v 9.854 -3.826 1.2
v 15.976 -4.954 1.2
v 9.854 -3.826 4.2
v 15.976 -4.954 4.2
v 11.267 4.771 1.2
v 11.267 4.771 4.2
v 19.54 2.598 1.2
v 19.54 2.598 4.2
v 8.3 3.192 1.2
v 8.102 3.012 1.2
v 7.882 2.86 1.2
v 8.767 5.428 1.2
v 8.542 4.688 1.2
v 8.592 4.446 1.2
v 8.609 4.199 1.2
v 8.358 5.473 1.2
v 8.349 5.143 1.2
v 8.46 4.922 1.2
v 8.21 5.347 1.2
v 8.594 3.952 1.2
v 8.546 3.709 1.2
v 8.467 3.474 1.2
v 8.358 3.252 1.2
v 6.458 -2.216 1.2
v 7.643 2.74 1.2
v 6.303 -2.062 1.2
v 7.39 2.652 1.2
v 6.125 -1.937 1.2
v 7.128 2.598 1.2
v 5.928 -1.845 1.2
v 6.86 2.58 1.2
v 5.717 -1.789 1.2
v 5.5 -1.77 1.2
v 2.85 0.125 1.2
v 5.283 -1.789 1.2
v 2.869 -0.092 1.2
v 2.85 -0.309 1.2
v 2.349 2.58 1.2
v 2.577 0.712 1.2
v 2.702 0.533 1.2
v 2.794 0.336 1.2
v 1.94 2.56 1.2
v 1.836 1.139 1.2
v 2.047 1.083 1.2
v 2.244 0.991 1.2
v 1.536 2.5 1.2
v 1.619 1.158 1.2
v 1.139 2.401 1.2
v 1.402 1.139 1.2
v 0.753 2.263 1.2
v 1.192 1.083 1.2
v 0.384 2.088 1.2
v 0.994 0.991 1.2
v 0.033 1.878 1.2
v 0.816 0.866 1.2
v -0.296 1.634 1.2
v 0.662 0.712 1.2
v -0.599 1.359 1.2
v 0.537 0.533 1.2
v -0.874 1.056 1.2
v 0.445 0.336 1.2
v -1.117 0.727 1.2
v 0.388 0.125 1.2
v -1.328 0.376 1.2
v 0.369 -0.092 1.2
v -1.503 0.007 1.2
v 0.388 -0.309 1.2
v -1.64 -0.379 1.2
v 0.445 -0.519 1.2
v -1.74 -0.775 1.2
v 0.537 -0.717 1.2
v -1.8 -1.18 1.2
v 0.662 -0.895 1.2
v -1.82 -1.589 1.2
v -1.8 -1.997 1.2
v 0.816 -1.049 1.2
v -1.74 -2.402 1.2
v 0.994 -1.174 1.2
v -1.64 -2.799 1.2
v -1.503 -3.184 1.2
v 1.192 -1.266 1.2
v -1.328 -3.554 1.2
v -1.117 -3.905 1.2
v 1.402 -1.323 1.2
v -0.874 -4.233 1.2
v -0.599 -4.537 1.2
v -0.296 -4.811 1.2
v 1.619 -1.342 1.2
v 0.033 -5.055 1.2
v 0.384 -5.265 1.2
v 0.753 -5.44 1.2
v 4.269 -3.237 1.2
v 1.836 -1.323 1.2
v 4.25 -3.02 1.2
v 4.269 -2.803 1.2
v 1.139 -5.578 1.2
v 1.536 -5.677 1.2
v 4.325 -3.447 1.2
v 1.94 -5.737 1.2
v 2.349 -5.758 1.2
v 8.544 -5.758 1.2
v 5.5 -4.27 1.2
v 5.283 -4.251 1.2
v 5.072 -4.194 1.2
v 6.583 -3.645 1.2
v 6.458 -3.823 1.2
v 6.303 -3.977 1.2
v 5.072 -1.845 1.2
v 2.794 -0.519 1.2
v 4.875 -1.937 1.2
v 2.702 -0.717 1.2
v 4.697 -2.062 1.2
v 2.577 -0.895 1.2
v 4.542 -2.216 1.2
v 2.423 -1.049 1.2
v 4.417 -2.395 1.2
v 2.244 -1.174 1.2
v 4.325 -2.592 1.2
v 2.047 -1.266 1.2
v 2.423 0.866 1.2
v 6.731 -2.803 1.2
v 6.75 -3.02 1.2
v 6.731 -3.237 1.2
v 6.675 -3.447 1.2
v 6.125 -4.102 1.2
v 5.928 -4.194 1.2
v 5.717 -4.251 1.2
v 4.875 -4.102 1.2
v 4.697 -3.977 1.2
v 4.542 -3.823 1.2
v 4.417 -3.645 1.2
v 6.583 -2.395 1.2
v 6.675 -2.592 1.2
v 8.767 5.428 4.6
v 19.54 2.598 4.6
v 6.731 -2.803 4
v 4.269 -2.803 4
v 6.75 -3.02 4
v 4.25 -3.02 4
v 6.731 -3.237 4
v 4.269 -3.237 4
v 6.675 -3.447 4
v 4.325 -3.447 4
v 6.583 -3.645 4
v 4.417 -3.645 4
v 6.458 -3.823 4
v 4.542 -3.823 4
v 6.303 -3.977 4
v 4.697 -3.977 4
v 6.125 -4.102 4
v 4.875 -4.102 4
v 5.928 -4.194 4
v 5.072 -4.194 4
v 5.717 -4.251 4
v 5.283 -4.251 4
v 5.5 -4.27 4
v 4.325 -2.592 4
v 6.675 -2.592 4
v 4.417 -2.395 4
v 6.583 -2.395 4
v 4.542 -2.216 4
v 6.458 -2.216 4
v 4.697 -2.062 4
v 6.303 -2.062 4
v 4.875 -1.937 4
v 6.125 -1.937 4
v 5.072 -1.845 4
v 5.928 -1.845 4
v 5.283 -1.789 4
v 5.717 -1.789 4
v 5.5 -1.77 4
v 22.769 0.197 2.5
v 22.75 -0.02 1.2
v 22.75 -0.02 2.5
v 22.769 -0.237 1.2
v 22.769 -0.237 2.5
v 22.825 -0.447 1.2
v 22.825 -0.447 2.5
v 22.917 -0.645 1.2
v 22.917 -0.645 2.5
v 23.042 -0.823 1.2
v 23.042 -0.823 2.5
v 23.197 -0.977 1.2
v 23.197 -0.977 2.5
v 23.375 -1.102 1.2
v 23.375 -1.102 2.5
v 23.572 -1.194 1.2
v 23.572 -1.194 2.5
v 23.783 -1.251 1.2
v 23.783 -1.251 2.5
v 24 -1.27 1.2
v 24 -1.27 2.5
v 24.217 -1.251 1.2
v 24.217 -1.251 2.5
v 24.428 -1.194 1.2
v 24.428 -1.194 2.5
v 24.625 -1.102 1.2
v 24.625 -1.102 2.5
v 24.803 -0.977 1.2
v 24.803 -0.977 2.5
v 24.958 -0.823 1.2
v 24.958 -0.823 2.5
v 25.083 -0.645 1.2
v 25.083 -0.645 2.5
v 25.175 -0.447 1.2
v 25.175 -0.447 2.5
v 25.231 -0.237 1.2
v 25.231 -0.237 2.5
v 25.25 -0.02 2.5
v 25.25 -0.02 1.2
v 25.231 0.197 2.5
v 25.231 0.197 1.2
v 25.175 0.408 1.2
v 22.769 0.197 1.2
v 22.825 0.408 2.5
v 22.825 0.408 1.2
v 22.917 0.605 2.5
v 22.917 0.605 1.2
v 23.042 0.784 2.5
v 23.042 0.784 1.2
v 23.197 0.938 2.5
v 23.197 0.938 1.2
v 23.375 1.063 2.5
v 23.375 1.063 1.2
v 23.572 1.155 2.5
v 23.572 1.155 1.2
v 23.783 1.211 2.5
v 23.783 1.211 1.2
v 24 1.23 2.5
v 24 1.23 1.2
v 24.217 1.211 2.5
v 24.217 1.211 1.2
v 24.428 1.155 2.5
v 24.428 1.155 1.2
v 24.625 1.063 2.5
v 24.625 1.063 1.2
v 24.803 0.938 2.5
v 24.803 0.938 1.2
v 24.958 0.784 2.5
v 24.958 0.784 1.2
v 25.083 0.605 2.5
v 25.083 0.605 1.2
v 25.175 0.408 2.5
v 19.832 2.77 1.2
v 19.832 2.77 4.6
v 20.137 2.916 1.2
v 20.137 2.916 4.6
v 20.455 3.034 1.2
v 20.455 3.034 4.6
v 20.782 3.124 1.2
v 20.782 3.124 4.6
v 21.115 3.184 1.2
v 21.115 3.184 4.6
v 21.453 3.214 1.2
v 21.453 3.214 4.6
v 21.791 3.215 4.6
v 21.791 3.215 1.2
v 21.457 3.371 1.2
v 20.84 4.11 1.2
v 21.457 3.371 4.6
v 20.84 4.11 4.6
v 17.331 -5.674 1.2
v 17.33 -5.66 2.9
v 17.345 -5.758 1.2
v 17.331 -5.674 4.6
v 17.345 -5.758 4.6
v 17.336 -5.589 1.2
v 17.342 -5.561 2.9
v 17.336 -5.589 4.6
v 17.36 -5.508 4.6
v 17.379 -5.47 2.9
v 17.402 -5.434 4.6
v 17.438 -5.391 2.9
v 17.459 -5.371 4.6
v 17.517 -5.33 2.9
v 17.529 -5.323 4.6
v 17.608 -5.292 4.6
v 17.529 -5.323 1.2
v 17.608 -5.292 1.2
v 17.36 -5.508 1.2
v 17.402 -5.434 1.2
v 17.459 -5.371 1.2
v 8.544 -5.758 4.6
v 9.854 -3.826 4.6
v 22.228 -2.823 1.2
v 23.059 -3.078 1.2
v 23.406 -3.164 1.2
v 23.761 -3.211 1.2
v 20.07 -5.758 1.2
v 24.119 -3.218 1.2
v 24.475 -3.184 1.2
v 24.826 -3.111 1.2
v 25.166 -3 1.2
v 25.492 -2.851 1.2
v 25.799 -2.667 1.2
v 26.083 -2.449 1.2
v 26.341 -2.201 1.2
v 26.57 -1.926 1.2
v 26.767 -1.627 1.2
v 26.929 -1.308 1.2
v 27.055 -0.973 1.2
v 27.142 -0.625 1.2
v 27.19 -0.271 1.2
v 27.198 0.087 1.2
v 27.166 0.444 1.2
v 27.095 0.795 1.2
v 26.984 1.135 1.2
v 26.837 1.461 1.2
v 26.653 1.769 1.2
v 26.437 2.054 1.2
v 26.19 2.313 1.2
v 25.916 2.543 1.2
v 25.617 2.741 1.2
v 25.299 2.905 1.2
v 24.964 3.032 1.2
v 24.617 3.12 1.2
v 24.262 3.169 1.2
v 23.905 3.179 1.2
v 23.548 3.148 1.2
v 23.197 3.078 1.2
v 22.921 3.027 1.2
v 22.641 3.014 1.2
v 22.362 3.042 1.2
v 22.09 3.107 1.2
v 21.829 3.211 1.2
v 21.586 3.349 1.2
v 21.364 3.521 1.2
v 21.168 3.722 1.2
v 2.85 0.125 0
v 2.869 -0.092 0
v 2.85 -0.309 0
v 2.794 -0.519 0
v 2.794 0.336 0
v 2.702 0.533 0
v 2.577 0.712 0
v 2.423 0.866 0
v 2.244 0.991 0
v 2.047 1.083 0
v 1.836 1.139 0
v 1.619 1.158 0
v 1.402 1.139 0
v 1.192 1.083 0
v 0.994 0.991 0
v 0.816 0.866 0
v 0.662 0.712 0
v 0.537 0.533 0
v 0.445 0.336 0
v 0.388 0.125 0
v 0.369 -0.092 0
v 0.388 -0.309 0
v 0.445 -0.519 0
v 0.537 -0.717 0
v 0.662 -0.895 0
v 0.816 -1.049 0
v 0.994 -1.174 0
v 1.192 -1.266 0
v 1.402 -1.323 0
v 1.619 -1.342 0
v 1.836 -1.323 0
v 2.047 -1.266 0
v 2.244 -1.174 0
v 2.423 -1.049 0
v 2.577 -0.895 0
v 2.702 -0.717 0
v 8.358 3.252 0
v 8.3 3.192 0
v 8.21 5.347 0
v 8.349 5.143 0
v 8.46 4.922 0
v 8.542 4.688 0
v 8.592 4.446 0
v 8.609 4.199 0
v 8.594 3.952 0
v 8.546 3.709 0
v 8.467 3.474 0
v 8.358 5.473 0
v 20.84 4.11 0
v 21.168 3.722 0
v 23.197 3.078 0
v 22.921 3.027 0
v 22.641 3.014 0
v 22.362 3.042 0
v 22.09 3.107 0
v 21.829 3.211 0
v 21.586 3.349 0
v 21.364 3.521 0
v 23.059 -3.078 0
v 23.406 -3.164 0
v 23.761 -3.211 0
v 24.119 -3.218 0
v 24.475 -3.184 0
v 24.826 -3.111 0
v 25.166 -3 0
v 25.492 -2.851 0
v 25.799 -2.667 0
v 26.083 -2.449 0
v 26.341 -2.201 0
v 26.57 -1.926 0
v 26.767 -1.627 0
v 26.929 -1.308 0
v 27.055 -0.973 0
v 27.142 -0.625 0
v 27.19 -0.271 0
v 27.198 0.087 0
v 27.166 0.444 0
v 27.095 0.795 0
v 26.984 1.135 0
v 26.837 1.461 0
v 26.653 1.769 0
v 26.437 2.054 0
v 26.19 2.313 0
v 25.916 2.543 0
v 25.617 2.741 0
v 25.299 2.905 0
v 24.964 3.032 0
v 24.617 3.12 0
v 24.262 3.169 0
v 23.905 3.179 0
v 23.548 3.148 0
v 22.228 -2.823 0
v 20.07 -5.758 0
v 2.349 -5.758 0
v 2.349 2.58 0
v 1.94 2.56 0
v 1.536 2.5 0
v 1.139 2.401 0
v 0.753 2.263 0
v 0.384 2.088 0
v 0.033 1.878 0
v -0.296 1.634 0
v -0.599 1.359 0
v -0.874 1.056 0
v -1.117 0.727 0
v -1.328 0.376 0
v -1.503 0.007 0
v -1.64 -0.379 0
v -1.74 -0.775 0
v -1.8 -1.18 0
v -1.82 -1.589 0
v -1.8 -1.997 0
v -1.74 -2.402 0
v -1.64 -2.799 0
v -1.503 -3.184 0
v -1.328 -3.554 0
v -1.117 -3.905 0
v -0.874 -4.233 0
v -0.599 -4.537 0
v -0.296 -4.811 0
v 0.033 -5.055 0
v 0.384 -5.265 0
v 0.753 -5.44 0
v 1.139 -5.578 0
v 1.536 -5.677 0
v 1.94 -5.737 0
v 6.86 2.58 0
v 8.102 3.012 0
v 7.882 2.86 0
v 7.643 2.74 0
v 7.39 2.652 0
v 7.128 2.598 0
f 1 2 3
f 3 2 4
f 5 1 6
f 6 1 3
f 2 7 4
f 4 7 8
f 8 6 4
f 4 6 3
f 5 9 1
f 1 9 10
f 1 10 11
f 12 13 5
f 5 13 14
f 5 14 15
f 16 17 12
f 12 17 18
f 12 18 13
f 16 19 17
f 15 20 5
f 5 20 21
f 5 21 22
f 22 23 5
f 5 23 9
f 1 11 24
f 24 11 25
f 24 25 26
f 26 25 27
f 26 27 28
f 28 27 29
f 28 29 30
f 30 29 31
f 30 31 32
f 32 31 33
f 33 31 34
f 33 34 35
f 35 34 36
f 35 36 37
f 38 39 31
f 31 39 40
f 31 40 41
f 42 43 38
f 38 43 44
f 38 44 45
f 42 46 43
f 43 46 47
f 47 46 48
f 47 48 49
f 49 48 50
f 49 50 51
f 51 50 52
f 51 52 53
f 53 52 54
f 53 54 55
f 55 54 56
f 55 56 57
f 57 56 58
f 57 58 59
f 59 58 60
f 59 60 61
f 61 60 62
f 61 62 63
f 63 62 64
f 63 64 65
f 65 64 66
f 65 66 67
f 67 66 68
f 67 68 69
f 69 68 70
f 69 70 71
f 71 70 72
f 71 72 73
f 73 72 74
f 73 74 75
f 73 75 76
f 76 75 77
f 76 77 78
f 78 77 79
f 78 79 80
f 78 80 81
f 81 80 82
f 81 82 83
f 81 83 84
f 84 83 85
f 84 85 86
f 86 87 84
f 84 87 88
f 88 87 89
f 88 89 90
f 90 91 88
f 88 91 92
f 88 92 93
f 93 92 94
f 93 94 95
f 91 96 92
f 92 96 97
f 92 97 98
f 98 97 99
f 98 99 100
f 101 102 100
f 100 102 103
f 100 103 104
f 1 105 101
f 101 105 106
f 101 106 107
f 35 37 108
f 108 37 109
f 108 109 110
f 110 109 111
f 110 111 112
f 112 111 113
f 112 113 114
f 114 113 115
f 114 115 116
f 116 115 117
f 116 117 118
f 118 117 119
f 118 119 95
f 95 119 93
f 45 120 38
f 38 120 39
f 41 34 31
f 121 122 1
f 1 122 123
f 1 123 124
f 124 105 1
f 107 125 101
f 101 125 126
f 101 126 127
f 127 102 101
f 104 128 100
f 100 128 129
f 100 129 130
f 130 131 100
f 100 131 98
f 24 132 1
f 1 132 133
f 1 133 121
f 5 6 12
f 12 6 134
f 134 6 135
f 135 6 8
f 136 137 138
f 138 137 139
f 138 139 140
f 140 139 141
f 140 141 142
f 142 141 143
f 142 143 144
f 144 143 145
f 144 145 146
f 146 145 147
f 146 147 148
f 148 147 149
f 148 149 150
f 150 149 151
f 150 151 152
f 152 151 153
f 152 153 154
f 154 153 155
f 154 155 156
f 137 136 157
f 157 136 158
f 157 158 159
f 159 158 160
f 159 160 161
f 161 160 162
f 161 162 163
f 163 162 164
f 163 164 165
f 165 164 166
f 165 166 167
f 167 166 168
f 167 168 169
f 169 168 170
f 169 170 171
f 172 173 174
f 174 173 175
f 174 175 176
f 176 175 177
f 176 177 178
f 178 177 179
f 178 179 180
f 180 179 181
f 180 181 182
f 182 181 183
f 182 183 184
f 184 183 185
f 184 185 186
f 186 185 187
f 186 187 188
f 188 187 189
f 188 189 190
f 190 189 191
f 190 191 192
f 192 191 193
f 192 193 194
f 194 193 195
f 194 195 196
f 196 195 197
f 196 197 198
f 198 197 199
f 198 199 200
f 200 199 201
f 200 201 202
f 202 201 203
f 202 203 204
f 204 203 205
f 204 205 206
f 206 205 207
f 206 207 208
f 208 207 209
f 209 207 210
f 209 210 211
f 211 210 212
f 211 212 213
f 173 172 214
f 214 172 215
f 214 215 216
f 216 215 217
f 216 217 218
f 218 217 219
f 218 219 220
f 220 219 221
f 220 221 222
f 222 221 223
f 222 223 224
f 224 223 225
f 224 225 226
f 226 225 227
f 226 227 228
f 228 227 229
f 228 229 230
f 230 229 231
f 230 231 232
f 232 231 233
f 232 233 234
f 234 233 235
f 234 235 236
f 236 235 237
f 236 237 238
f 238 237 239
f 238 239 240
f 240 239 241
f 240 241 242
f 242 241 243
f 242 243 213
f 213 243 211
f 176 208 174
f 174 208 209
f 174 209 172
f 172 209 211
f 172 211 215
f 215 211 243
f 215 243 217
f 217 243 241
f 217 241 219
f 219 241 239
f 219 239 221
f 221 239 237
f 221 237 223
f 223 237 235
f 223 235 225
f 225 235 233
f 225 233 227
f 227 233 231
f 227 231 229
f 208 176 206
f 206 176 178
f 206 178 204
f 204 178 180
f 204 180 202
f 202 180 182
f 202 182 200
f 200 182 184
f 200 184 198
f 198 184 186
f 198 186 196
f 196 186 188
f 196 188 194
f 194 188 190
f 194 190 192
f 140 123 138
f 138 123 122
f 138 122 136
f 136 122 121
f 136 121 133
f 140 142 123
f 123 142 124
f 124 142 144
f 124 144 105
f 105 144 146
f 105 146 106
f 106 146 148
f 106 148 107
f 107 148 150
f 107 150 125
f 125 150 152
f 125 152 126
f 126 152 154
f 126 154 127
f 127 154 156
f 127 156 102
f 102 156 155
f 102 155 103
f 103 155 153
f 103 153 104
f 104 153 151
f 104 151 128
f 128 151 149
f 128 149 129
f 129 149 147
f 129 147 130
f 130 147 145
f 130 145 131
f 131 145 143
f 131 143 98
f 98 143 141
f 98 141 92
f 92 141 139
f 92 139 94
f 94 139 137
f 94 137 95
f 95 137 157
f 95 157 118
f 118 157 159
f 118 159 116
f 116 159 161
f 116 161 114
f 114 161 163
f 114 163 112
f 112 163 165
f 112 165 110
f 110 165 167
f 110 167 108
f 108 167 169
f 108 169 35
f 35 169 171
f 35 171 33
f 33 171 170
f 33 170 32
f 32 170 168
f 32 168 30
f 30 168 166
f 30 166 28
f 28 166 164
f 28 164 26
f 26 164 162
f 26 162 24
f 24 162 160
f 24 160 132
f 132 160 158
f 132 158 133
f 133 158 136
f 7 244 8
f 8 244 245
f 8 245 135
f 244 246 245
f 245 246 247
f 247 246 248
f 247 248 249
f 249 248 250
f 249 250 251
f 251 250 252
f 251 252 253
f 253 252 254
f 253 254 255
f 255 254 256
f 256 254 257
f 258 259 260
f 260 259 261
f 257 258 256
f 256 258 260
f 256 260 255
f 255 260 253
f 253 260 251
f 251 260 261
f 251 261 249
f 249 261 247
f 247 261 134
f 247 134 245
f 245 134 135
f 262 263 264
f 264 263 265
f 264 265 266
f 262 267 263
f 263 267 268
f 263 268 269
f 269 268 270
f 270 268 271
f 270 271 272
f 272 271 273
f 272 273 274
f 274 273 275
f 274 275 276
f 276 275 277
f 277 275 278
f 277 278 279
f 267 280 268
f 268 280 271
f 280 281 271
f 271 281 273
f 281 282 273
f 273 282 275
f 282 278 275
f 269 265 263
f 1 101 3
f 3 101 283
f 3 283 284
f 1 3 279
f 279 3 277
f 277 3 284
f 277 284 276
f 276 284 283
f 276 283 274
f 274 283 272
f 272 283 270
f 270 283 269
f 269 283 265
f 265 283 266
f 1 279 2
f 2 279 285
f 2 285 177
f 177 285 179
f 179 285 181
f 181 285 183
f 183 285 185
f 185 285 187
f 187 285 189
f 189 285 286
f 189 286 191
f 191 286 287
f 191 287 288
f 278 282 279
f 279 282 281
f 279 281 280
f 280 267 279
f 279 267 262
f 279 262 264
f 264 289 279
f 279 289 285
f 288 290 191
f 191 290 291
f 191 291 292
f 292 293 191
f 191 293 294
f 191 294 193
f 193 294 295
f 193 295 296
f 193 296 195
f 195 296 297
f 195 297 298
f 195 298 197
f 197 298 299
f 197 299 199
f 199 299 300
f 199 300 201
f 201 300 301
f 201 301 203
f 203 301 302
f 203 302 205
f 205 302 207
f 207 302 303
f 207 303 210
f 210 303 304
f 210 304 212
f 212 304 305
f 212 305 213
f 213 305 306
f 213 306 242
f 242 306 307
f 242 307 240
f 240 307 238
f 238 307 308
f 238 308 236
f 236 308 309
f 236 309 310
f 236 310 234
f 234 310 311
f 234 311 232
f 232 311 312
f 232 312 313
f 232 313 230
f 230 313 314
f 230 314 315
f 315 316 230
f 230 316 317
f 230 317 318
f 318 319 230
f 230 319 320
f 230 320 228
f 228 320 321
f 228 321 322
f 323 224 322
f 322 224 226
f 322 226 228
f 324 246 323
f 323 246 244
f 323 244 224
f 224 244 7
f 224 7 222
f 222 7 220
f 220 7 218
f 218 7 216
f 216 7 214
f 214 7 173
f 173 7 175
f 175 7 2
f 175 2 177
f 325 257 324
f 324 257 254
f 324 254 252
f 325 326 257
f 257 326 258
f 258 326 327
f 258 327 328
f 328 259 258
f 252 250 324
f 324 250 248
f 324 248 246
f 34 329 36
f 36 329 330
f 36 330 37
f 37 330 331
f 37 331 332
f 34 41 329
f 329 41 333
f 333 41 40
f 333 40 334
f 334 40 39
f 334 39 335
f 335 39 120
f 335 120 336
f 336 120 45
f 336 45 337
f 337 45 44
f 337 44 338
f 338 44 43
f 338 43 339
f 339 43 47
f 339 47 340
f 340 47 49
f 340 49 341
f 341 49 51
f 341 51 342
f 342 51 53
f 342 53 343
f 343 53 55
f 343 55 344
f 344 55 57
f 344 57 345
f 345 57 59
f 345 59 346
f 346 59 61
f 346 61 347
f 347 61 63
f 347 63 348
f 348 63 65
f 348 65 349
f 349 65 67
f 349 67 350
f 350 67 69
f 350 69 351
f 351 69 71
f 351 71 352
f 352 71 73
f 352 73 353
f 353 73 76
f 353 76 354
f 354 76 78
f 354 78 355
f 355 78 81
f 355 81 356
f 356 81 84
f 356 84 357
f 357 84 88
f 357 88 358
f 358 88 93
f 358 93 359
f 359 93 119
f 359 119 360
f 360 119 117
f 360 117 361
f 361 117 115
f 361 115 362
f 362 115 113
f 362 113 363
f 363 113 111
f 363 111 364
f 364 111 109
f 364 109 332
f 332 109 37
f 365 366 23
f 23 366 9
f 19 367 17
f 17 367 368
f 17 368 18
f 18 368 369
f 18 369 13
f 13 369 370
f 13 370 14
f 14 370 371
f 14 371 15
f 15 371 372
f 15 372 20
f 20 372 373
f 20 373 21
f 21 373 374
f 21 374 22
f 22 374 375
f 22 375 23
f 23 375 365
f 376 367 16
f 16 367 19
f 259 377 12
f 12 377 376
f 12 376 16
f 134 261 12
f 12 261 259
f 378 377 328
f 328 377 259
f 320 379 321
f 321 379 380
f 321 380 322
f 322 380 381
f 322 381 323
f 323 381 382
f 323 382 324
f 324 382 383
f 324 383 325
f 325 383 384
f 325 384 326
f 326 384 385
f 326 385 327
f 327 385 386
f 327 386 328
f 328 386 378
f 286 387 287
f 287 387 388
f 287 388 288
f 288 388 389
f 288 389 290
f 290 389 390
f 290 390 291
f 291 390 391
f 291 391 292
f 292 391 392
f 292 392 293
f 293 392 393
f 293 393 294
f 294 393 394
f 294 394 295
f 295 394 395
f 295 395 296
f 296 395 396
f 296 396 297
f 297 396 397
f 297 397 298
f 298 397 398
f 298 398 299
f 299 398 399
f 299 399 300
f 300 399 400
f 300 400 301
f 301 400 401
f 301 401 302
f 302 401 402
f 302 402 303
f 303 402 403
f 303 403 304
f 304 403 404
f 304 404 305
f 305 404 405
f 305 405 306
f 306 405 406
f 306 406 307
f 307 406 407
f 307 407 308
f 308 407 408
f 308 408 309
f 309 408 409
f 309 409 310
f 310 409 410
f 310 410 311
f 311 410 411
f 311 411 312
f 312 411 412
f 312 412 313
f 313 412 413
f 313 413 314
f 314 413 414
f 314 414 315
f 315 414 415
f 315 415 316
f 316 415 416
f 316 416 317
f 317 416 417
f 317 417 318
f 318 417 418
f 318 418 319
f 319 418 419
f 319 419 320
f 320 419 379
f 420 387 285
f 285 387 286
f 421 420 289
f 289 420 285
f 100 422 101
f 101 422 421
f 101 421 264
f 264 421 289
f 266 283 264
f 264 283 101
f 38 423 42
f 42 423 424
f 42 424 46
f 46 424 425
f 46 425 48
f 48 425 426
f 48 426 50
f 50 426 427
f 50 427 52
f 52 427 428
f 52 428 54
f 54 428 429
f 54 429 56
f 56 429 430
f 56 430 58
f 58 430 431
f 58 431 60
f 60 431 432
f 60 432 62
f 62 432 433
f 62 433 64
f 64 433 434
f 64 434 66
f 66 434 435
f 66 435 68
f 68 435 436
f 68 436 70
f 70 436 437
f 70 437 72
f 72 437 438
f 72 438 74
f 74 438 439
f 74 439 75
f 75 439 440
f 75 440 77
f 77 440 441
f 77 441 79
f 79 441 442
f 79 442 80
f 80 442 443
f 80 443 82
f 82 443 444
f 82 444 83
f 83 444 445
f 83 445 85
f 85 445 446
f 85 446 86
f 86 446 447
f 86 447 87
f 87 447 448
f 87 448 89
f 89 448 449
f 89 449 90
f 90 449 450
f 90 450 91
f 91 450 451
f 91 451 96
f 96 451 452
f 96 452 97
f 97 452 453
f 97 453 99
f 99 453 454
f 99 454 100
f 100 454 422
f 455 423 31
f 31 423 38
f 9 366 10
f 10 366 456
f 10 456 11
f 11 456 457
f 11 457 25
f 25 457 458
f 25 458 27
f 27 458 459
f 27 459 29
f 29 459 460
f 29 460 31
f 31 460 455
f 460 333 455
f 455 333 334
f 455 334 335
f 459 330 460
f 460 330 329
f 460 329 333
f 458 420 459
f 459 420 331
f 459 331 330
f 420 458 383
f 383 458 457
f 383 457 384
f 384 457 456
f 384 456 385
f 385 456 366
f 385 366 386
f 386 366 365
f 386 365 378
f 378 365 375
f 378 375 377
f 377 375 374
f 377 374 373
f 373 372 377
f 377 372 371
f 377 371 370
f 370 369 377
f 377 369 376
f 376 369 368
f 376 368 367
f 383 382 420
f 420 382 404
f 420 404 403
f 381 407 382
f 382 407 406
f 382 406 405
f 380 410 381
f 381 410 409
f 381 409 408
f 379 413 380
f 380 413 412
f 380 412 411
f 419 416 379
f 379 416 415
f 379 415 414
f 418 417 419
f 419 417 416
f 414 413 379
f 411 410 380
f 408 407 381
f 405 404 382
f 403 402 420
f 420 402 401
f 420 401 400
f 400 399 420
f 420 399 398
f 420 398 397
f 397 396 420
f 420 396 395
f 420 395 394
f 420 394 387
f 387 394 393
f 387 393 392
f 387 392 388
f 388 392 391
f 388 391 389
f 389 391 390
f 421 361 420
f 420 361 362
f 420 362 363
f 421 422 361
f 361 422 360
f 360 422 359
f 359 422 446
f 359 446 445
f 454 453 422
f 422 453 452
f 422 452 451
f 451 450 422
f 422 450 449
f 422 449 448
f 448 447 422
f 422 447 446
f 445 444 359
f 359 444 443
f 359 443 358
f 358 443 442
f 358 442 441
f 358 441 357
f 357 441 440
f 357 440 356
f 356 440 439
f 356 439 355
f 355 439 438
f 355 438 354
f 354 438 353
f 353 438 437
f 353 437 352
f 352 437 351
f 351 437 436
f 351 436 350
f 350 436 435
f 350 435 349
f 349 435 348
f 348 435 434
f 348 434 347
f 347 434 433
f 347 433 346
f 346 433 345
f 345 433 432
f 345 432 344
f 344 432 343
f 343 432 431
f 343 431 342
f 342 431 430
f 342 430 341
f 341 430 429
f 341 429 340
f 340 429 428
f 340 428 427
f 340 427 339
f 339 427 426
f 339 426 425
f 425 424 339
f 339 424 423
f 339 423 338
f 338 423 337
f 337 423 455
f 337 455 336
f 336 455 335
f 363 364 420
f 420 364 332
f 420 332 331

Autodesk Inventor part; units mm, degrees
ref_plane "YZ Plane" through (0, 0, 0) normal (1, 0, 0) x (0, 1, 0)
ref_plane "XZ Plane" through (0, 0, 0) normal (0, 1, 0) x (-1, 0, 0)
ref_plane "XY Plane" through (0, 0, 0) normal (0, 0, 1) x (1, 0, 0)
sketch "Boceto1" plane through (0, 0, 0) normal (0, 0, 1) x (1, 0, 0)
  circle A0 centre (1.6193, -0.0917) radius 1.25
  circle A1 centre (5.5, -3.0198) radius 1.25
  circle A2 centre (24, -0.0198) radius 1.25
  arc A3 (23.0586, -3.0782) -> (23.1969, 3.0777) centre (24, -0.0198) ccw
  line L0 (22.2281, -2.8226) -> (23.0586, -3.0782)
  line L1 (20.0701, -5.7575) -> (22.2281, -2.8226)
  line L2 (8.358, 5.473) -> (10.9932, 5.5802) construction
  line L3 (8.2096, 5.3474) -> (8.358, 5.473)
  line L4 (21.1684, 3.7215) -> (20.8396, 4.1099)
  line L5 (20.8396, 4.1099) -> (8.358, 5.473)
  arc A4 (21.1684, 3.7215) -> (23.1969, 3.0777) centre (22.6949, 5.0137) ccw
  line L6 (6.8396, 2.5802) -> (2.3489, 2.5802)
  line L7 (20.0701, -5.7575) -> (2.3489, -5.7575)
  arc A5 (2.3489, 2.5802) -> (2.3489, -5.7575) centre (2.3489, -1.5887) ccw
  line L8 (8.358, 3.2519) -> (8.3004, 3.1922)
  line L9 (6.8605, 2.5802) -> (6.7932, 2.5802)
  arc A6 (8.358, 3.2519) -> (8.2096, 5.3474) centre (6.7321, 4.1898) ccw
  arc A7 (6.8605, 2.5802) -> (8.3004, 3.1922) centre (6.8605, 4.5802) ccw
  point P0 (21.1252, -5.0888)
  point P1 (22.1345, 2.5802)
  point P2 (7.7105, 2.5802)
  dimension "d1" = 2.5
  dimension "d33" = 2
extrude "Extrusión1" add sketch "Boceto1" along normal blind 1.2
sketch "Boceto2" plane through (0, 0, 1.2) normal (0, 0, 1) x (1, 0, 0)
  arc A0 (23.0586, -3.0782) -> (23.1969, 3.0777) centre (24, -0.0198) ccw projected
  line L0 (20.8396, 4.1099) -> (8.358, 5.473) projected
  line L1 (8.7666, 5.4284) -> (20.8396, 4.1099)
  line L2 (20.8396, 4.1099) -> (21.4572, 3.3711)
  line L3 (21.4572, 3.3711) -> (21.7914, 3.2147)
  line L4 (8.7666, 5.4284) -> (19.5399, 2.598)
  arc A1 (21.7914, 3.2147) -> (19.5399, 2.598) centre (21.6249, -0.5954) ccw
  line L5 (8.5436, -5.7575) -> (9.8539, -3.8256)
  line L6 (9.8539, -3.8256) -> (17.608, -5.2919)
  line L7 (17.3447, -5.7575) -> (8.5436, -5.7575)
  arc A2 (17.608, -5.2919) -> (17.3447, -5.7575) centre (17.7053, -5.6542) ccw
  point P0 (0, 0)
  point P1 (0.0237, -5.8)
  point P2 (24.1345, 2.6)
extrude "Extrusión2" add sketch "Boceto2" along normal blind 3.4
sketch "Boceto3" plane through (0, 0, 0) normal (0, 0, -1) x (-1, 0, 0)
  circle A0 centre (0, 0) radius 1.2362
  circle A1 centre (-5.5, -3.0198) radius 1.25 projected
  circle A2 centre (-5.5, -3.0198) radius 1.25
  circle A3 centre (-24, -0.0198) radius 1.25 projected
  circle A4 centre (-24, -0.0198) radius 1.25
extrude "Extrusión3" add sketch "Boceto3" against normal blind 2.5 contours A1 | A3
sketch "Boceto4" plane through (5.5, -3.0198, 2.5) normal (0, 0, 1) x (1, 0, 0)
  circle A0 centre (0, 0) radius 1.25 projected
  circle A1 centre (0, 0) radius 1.25
  point P0 (-5.5, 3.0198)
extrude "Extrusión4" add sketch "Boceto4" along normal blind 1.5
sketch "Boceto6" plane through (0, 0, 1.2) normal (0, 0, 1) x (1, 0, 0)
  line L0 (9.8539, -3.8256) -> (17.608, -5.2919) projected
  line L1 (9.8539, -3.8256) -> (11.2672, 4.7714)
  line L2 (19.5399, 2.598) -> (8.7666, 5.4284) projected
  line L3 (11.2672, 4.7714) -> (19.5399, 2.598)
  line L4 (19.5399, 2.598) -> (15.9763, -4.9536)
  line L5 (9.8539, -3.8256) -> (8.5436, -5.7575) projected
  line L6 (15.9763, -4.9536) -> (9.8539, -3.8256)
  point P0 (0, 0)
extrude "Extrusión6" add sketch "Boceto6" along normal blind 3
properties part number "Pieza2_3DPrint"
